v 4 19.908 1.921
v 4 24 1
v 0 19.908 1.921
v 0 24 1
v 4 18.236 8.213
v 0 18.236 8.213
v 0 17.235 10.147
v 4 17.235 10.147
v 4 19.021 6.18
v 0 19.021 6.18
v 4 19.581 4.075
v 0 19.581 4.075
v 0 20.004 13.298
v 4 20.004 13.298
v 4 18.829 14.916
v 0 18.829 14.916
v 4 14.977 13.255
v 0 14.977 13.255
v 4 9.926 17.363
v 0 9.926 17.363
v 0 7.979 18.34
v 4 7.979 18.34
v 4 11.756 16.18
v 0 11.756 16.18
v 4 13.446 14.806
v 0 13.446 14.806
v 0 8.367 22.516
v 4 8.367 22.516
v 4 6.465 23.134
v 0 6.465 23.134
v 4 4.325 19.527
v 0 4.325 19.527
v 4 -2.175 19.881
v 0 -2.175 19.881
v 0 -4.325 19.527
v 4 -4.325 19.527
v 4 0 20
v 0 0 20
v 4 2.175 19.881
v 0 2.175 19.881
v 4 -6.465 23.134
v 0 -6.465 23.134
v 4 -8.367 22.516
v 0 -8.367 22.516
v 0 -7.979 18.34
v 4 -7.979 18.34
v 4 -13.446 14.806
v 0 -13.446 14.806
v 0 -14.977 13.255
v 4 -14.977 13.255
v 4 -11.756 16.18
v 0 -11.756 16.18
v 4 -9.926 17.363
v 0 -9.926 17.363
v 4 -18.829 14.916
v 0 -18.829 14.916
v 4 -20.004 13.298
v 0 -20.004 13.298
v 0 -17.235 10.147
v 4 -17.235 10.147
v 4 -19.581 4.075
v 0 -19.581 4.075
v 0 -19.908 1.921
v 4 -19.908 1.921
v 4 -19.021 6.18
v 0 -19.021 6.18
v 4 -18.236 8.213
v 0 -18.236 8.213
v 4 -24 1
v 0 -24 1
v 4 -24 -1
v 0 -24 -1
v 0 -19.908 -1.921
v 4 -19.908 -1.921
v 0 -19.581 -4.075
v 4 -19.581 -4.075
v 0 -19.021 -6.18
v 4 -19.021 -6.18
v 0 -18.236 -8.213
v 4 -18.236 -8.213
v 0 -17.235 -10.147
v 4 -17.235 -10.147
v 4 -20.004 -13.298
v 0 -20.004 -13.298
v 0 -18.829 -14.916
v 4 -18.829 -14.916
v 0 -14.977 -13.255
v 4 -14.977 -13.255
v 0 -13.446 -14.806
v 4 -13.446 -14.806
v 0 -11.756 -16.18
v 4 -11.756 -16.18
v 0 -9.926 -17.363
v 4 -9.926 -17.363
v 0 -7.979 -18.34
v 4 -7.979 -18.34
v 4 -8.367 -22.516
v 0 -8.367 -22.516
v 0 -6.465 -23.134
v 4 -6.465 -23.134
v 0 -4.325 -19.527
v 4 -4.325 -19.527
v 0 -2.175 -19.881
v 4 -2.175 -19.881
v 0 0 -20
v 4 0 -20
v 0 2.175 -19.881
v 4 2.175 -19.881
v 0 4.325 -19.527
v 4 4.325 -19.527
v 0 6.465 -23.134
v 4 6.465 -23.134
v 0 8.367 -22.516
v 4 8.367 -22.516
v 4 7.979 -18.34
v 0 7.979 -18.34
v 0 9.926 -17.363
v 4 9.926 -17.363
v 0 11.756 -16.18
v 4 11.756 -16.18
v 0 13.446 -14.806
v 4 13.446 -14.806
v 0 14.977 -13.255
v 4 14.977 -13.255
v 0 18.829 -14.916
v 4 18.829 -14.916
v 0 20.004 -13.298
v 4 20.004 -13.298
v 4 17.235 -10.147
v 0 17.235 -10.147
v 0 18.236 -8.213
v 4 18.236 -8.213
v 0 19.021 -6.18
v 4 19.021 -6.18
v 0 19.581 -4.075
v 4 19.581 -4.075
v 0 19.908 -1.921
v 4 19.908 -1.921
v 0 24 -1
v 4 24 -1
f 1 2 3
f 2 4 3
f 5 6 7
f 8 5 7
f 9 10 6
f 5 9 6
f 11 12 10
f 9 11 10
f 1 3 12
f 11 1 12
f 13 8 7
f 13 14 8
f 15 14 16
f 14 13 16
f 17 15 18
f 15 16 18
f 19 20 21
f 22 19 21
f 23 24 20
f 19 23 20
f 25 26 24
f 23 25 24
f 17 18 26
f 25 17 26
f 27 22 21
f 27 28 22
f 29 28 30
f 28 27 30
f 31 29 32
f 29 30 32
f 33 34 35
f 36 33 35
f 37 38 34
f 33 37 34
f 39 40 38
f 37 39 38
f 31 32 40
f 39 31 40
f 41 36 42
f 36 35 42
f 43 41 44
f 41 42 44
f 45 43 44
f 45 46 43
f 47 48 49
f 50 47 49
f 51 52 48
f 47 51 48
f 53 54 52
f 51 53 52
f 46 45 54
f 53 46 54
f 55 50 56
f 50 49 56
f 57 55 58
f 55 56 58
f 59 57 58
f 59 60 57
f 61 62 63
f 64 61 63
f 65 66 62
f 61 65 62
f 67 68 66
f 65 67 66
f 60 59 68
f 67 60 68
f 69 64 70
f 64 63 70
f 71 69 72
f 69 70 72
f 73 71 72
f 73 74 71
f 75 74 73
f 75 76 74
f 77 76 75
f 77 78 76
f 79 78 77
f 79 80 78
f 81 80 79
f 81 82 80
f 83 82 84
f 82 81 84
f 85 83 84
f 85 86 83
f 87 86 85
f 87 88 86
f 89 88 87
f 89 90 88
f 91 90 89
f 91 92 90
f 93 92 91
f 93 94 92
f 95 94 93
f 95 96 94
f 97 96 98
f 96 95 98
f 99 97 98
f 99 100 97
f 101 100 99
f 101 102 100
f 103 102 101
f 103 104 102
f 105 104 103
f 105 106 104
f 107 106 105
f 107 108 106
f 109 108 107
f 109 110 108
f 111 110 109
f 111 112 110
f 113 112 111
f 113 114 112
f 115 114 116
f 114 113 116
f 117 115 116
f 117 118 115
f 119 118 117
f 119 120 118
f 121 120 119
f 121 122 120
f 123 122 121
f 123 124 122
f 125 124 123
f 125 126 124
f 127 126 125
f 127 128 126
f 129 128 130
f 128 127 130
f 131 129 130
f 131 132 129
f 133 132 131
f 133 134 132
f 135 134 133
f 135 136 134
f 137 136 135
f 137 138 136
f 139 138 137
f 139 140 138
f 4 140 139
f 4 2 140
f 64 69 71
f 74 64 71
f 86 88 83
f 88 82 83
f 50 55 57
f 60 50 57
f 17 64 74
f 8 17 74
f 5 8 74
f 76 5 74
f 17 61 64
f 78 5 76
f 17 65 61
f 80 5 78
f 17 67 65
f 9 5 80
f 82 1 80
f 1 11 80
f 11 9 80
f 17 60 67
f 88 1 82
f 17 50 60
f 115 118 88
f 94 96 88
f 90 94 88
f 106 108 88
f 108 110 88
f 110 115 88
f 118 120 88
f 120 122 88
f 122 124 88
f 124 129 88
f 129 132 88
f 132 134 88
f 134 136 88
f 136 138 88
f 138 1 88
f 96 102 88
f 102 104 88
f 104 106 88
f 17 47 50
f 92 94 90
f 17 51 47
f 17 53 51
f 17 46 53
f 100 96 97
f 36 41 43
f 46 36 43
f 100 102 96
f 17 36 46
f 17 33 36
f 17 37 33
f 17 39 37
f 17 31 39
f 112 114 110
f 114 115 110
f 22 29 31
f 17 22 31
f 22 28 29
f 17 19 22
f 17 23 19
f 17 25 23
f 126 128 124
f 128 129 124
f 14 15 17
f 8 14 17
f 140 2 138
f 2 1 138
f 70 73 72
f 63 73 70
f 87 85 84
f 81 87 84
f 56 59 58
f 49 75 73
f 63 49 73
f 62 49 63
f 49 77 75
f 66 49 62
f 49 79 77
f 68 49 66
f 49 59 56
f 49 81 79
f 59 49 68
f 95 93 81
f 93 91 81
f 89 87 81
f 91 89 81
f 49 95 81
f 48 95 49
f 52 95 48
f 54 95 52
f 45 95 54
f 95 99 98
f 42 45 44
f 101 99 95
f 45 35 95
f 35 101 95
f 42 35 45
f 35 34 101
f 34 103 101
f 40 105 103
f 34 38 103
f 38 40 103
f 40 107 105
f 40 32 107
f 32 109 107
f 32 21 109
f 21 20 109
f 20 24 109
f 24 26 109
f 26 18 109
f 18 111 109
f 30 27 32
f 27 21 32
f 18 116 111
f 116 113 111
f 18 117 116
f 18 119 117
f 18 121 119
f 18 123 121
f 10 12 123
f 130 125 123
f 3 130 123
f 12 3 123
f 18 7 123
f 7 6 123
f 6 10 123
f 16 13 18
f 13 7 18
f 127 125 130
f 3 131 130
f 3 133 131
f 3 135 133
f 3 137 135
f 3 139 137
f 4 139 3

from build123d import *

# Parameters (mm, degrees)
EXTRUDE_1_DEPTH = 4


with BuildPart() as part:
    # Эскиз1 → Бобышка-Вытянуть1 (new body)
    with BuildSketch(Plane(origin=(0, 0, 0), x_dir=(0, 0, -1), z_dir=(1, 0, 0))):
        with BuildLine():
            Line((-1, 24), (1, 24))
            Line((1, 24), (1.920801391, 19.907549372))
            ThreePointArc((1.920801391, 19.907549372), (6.180339887, 19.021130326), (10.147402962, 17.234564489))
            Line((10.147402962, 17.234564489), (13.297829061, 20.004193117))
            Line((13.297829061, 20.004193117), (14.915863049, 18.828622613))
            Line((14.915863049, 18.828622613), (13.255324899, 14.976527028))
            ThreePointArc((13.255324899, 14.976527028), (16.180339887, 11.755705046), (18.339644281, 7.978561752))
            Line((18.339644281, 7.978561752), (22.516339397, 8.367464381))
            Line((22.516339397, 8.367464381), (23.134373385, 6.465351349))
            Line((23.134373385, 6.465351349), (19.526764827, 4.324980393))
            ThreePointArc((19.526764827, 4.324980393), (20, 0), (19.526764827, -4.324980393))
            Line((19.526764827, -4.324980393), (23.134373385, -6.465351349))
            Line((23.134373385, -6.465351349), (22.516339397, -8.367464381))
            Line((22.516339397, -8.367464381), (18.339644281, -7.978561752))
            ThreePointArc((18.339644281, -7.978561752), (16.180339887, -11.755705046), (13.255324899, -14.976527028))
            Line((13.255324899, -14.976527028), (14.915863049, -18.828622613))
            Line((14.915863049, -18.828622613), (13.297829061, -20.004193117))
            Line((13.297829061, -20.004193117), (10.147402962, -17.234564489))
            ThreePointArc((10.147402962, -17.234564489), (6.180339887, -19.021130326), (1.920801391, -19.907549372))
            Line((1.920801391, -19.907549372), (1, -24))
            Line((1, -24), (-1, -24))
            Line((-1, -24), (-1.920801391, -19.907549372))
            ThreePointArc((-1.920801391, -19.907549372), (-6.180339887, -19.021130326), (-10.147402962, -17.234564489))
            Line((-10.147402962, -17.234564489), (-13.297829061, -20.004193117))
            Line((-13.297829061, -20.004193117), (-14.915863049, -18.828622613))
            Line((-14.915863049, -18.828622613), (-13.255324899, -14.976527028))
            ThreePointArc((-13.255324899, -14.976527028), (-16.180339887, -11.755705046), (-18.339644281, -7.978561752))
            Line((-18.339644281, -7.978561752), (-22.516339397, -8.367464381))
            Line((-22.516339397, -8.367464381), (-23.134373385, -6.465351349))
            Line((-23.134373385, -6.465351349), (-19.526764827, -4.324980393))
            ThreePointArc((-19.526764827, -4.324980393), (-20, 0), (-19.526764827, 4.324980393))
            Line((-19.526764827, 4.324980393), (-23.134373385, 6.465351349))
            Line((-23.134373385, 6.465351349), (-22.516339397, 8.367464381))
            Line((-22.516339397, 8.367464381), (-18.339644281, 7.978561752))
            ThreePointArc((-18.339644281, 7.978561752), (-16.180339887, 11.755705046), (-13.255324899, 14.976527028))
            Line((-13.255324899, 14.976527028), (-14.915863049, 18.828622613))
            Line((-14.915863049, 18.828622613), (-13.297829061, 20.004193117))
            Line((-13.297829061, 20.004193117), (-10.147402962, 17.234564489))
            ThreePointArc((-10.147402962, 17.234564489), (-6.180339887, 19.021130326), (-1.920801391, 19.907549372))
            Line((-1.920801391, 19.907549372), (-1, 24))
        make_face()
    extrude(amount=EXTRUDE_1_DEPTH)


solid = part.part
